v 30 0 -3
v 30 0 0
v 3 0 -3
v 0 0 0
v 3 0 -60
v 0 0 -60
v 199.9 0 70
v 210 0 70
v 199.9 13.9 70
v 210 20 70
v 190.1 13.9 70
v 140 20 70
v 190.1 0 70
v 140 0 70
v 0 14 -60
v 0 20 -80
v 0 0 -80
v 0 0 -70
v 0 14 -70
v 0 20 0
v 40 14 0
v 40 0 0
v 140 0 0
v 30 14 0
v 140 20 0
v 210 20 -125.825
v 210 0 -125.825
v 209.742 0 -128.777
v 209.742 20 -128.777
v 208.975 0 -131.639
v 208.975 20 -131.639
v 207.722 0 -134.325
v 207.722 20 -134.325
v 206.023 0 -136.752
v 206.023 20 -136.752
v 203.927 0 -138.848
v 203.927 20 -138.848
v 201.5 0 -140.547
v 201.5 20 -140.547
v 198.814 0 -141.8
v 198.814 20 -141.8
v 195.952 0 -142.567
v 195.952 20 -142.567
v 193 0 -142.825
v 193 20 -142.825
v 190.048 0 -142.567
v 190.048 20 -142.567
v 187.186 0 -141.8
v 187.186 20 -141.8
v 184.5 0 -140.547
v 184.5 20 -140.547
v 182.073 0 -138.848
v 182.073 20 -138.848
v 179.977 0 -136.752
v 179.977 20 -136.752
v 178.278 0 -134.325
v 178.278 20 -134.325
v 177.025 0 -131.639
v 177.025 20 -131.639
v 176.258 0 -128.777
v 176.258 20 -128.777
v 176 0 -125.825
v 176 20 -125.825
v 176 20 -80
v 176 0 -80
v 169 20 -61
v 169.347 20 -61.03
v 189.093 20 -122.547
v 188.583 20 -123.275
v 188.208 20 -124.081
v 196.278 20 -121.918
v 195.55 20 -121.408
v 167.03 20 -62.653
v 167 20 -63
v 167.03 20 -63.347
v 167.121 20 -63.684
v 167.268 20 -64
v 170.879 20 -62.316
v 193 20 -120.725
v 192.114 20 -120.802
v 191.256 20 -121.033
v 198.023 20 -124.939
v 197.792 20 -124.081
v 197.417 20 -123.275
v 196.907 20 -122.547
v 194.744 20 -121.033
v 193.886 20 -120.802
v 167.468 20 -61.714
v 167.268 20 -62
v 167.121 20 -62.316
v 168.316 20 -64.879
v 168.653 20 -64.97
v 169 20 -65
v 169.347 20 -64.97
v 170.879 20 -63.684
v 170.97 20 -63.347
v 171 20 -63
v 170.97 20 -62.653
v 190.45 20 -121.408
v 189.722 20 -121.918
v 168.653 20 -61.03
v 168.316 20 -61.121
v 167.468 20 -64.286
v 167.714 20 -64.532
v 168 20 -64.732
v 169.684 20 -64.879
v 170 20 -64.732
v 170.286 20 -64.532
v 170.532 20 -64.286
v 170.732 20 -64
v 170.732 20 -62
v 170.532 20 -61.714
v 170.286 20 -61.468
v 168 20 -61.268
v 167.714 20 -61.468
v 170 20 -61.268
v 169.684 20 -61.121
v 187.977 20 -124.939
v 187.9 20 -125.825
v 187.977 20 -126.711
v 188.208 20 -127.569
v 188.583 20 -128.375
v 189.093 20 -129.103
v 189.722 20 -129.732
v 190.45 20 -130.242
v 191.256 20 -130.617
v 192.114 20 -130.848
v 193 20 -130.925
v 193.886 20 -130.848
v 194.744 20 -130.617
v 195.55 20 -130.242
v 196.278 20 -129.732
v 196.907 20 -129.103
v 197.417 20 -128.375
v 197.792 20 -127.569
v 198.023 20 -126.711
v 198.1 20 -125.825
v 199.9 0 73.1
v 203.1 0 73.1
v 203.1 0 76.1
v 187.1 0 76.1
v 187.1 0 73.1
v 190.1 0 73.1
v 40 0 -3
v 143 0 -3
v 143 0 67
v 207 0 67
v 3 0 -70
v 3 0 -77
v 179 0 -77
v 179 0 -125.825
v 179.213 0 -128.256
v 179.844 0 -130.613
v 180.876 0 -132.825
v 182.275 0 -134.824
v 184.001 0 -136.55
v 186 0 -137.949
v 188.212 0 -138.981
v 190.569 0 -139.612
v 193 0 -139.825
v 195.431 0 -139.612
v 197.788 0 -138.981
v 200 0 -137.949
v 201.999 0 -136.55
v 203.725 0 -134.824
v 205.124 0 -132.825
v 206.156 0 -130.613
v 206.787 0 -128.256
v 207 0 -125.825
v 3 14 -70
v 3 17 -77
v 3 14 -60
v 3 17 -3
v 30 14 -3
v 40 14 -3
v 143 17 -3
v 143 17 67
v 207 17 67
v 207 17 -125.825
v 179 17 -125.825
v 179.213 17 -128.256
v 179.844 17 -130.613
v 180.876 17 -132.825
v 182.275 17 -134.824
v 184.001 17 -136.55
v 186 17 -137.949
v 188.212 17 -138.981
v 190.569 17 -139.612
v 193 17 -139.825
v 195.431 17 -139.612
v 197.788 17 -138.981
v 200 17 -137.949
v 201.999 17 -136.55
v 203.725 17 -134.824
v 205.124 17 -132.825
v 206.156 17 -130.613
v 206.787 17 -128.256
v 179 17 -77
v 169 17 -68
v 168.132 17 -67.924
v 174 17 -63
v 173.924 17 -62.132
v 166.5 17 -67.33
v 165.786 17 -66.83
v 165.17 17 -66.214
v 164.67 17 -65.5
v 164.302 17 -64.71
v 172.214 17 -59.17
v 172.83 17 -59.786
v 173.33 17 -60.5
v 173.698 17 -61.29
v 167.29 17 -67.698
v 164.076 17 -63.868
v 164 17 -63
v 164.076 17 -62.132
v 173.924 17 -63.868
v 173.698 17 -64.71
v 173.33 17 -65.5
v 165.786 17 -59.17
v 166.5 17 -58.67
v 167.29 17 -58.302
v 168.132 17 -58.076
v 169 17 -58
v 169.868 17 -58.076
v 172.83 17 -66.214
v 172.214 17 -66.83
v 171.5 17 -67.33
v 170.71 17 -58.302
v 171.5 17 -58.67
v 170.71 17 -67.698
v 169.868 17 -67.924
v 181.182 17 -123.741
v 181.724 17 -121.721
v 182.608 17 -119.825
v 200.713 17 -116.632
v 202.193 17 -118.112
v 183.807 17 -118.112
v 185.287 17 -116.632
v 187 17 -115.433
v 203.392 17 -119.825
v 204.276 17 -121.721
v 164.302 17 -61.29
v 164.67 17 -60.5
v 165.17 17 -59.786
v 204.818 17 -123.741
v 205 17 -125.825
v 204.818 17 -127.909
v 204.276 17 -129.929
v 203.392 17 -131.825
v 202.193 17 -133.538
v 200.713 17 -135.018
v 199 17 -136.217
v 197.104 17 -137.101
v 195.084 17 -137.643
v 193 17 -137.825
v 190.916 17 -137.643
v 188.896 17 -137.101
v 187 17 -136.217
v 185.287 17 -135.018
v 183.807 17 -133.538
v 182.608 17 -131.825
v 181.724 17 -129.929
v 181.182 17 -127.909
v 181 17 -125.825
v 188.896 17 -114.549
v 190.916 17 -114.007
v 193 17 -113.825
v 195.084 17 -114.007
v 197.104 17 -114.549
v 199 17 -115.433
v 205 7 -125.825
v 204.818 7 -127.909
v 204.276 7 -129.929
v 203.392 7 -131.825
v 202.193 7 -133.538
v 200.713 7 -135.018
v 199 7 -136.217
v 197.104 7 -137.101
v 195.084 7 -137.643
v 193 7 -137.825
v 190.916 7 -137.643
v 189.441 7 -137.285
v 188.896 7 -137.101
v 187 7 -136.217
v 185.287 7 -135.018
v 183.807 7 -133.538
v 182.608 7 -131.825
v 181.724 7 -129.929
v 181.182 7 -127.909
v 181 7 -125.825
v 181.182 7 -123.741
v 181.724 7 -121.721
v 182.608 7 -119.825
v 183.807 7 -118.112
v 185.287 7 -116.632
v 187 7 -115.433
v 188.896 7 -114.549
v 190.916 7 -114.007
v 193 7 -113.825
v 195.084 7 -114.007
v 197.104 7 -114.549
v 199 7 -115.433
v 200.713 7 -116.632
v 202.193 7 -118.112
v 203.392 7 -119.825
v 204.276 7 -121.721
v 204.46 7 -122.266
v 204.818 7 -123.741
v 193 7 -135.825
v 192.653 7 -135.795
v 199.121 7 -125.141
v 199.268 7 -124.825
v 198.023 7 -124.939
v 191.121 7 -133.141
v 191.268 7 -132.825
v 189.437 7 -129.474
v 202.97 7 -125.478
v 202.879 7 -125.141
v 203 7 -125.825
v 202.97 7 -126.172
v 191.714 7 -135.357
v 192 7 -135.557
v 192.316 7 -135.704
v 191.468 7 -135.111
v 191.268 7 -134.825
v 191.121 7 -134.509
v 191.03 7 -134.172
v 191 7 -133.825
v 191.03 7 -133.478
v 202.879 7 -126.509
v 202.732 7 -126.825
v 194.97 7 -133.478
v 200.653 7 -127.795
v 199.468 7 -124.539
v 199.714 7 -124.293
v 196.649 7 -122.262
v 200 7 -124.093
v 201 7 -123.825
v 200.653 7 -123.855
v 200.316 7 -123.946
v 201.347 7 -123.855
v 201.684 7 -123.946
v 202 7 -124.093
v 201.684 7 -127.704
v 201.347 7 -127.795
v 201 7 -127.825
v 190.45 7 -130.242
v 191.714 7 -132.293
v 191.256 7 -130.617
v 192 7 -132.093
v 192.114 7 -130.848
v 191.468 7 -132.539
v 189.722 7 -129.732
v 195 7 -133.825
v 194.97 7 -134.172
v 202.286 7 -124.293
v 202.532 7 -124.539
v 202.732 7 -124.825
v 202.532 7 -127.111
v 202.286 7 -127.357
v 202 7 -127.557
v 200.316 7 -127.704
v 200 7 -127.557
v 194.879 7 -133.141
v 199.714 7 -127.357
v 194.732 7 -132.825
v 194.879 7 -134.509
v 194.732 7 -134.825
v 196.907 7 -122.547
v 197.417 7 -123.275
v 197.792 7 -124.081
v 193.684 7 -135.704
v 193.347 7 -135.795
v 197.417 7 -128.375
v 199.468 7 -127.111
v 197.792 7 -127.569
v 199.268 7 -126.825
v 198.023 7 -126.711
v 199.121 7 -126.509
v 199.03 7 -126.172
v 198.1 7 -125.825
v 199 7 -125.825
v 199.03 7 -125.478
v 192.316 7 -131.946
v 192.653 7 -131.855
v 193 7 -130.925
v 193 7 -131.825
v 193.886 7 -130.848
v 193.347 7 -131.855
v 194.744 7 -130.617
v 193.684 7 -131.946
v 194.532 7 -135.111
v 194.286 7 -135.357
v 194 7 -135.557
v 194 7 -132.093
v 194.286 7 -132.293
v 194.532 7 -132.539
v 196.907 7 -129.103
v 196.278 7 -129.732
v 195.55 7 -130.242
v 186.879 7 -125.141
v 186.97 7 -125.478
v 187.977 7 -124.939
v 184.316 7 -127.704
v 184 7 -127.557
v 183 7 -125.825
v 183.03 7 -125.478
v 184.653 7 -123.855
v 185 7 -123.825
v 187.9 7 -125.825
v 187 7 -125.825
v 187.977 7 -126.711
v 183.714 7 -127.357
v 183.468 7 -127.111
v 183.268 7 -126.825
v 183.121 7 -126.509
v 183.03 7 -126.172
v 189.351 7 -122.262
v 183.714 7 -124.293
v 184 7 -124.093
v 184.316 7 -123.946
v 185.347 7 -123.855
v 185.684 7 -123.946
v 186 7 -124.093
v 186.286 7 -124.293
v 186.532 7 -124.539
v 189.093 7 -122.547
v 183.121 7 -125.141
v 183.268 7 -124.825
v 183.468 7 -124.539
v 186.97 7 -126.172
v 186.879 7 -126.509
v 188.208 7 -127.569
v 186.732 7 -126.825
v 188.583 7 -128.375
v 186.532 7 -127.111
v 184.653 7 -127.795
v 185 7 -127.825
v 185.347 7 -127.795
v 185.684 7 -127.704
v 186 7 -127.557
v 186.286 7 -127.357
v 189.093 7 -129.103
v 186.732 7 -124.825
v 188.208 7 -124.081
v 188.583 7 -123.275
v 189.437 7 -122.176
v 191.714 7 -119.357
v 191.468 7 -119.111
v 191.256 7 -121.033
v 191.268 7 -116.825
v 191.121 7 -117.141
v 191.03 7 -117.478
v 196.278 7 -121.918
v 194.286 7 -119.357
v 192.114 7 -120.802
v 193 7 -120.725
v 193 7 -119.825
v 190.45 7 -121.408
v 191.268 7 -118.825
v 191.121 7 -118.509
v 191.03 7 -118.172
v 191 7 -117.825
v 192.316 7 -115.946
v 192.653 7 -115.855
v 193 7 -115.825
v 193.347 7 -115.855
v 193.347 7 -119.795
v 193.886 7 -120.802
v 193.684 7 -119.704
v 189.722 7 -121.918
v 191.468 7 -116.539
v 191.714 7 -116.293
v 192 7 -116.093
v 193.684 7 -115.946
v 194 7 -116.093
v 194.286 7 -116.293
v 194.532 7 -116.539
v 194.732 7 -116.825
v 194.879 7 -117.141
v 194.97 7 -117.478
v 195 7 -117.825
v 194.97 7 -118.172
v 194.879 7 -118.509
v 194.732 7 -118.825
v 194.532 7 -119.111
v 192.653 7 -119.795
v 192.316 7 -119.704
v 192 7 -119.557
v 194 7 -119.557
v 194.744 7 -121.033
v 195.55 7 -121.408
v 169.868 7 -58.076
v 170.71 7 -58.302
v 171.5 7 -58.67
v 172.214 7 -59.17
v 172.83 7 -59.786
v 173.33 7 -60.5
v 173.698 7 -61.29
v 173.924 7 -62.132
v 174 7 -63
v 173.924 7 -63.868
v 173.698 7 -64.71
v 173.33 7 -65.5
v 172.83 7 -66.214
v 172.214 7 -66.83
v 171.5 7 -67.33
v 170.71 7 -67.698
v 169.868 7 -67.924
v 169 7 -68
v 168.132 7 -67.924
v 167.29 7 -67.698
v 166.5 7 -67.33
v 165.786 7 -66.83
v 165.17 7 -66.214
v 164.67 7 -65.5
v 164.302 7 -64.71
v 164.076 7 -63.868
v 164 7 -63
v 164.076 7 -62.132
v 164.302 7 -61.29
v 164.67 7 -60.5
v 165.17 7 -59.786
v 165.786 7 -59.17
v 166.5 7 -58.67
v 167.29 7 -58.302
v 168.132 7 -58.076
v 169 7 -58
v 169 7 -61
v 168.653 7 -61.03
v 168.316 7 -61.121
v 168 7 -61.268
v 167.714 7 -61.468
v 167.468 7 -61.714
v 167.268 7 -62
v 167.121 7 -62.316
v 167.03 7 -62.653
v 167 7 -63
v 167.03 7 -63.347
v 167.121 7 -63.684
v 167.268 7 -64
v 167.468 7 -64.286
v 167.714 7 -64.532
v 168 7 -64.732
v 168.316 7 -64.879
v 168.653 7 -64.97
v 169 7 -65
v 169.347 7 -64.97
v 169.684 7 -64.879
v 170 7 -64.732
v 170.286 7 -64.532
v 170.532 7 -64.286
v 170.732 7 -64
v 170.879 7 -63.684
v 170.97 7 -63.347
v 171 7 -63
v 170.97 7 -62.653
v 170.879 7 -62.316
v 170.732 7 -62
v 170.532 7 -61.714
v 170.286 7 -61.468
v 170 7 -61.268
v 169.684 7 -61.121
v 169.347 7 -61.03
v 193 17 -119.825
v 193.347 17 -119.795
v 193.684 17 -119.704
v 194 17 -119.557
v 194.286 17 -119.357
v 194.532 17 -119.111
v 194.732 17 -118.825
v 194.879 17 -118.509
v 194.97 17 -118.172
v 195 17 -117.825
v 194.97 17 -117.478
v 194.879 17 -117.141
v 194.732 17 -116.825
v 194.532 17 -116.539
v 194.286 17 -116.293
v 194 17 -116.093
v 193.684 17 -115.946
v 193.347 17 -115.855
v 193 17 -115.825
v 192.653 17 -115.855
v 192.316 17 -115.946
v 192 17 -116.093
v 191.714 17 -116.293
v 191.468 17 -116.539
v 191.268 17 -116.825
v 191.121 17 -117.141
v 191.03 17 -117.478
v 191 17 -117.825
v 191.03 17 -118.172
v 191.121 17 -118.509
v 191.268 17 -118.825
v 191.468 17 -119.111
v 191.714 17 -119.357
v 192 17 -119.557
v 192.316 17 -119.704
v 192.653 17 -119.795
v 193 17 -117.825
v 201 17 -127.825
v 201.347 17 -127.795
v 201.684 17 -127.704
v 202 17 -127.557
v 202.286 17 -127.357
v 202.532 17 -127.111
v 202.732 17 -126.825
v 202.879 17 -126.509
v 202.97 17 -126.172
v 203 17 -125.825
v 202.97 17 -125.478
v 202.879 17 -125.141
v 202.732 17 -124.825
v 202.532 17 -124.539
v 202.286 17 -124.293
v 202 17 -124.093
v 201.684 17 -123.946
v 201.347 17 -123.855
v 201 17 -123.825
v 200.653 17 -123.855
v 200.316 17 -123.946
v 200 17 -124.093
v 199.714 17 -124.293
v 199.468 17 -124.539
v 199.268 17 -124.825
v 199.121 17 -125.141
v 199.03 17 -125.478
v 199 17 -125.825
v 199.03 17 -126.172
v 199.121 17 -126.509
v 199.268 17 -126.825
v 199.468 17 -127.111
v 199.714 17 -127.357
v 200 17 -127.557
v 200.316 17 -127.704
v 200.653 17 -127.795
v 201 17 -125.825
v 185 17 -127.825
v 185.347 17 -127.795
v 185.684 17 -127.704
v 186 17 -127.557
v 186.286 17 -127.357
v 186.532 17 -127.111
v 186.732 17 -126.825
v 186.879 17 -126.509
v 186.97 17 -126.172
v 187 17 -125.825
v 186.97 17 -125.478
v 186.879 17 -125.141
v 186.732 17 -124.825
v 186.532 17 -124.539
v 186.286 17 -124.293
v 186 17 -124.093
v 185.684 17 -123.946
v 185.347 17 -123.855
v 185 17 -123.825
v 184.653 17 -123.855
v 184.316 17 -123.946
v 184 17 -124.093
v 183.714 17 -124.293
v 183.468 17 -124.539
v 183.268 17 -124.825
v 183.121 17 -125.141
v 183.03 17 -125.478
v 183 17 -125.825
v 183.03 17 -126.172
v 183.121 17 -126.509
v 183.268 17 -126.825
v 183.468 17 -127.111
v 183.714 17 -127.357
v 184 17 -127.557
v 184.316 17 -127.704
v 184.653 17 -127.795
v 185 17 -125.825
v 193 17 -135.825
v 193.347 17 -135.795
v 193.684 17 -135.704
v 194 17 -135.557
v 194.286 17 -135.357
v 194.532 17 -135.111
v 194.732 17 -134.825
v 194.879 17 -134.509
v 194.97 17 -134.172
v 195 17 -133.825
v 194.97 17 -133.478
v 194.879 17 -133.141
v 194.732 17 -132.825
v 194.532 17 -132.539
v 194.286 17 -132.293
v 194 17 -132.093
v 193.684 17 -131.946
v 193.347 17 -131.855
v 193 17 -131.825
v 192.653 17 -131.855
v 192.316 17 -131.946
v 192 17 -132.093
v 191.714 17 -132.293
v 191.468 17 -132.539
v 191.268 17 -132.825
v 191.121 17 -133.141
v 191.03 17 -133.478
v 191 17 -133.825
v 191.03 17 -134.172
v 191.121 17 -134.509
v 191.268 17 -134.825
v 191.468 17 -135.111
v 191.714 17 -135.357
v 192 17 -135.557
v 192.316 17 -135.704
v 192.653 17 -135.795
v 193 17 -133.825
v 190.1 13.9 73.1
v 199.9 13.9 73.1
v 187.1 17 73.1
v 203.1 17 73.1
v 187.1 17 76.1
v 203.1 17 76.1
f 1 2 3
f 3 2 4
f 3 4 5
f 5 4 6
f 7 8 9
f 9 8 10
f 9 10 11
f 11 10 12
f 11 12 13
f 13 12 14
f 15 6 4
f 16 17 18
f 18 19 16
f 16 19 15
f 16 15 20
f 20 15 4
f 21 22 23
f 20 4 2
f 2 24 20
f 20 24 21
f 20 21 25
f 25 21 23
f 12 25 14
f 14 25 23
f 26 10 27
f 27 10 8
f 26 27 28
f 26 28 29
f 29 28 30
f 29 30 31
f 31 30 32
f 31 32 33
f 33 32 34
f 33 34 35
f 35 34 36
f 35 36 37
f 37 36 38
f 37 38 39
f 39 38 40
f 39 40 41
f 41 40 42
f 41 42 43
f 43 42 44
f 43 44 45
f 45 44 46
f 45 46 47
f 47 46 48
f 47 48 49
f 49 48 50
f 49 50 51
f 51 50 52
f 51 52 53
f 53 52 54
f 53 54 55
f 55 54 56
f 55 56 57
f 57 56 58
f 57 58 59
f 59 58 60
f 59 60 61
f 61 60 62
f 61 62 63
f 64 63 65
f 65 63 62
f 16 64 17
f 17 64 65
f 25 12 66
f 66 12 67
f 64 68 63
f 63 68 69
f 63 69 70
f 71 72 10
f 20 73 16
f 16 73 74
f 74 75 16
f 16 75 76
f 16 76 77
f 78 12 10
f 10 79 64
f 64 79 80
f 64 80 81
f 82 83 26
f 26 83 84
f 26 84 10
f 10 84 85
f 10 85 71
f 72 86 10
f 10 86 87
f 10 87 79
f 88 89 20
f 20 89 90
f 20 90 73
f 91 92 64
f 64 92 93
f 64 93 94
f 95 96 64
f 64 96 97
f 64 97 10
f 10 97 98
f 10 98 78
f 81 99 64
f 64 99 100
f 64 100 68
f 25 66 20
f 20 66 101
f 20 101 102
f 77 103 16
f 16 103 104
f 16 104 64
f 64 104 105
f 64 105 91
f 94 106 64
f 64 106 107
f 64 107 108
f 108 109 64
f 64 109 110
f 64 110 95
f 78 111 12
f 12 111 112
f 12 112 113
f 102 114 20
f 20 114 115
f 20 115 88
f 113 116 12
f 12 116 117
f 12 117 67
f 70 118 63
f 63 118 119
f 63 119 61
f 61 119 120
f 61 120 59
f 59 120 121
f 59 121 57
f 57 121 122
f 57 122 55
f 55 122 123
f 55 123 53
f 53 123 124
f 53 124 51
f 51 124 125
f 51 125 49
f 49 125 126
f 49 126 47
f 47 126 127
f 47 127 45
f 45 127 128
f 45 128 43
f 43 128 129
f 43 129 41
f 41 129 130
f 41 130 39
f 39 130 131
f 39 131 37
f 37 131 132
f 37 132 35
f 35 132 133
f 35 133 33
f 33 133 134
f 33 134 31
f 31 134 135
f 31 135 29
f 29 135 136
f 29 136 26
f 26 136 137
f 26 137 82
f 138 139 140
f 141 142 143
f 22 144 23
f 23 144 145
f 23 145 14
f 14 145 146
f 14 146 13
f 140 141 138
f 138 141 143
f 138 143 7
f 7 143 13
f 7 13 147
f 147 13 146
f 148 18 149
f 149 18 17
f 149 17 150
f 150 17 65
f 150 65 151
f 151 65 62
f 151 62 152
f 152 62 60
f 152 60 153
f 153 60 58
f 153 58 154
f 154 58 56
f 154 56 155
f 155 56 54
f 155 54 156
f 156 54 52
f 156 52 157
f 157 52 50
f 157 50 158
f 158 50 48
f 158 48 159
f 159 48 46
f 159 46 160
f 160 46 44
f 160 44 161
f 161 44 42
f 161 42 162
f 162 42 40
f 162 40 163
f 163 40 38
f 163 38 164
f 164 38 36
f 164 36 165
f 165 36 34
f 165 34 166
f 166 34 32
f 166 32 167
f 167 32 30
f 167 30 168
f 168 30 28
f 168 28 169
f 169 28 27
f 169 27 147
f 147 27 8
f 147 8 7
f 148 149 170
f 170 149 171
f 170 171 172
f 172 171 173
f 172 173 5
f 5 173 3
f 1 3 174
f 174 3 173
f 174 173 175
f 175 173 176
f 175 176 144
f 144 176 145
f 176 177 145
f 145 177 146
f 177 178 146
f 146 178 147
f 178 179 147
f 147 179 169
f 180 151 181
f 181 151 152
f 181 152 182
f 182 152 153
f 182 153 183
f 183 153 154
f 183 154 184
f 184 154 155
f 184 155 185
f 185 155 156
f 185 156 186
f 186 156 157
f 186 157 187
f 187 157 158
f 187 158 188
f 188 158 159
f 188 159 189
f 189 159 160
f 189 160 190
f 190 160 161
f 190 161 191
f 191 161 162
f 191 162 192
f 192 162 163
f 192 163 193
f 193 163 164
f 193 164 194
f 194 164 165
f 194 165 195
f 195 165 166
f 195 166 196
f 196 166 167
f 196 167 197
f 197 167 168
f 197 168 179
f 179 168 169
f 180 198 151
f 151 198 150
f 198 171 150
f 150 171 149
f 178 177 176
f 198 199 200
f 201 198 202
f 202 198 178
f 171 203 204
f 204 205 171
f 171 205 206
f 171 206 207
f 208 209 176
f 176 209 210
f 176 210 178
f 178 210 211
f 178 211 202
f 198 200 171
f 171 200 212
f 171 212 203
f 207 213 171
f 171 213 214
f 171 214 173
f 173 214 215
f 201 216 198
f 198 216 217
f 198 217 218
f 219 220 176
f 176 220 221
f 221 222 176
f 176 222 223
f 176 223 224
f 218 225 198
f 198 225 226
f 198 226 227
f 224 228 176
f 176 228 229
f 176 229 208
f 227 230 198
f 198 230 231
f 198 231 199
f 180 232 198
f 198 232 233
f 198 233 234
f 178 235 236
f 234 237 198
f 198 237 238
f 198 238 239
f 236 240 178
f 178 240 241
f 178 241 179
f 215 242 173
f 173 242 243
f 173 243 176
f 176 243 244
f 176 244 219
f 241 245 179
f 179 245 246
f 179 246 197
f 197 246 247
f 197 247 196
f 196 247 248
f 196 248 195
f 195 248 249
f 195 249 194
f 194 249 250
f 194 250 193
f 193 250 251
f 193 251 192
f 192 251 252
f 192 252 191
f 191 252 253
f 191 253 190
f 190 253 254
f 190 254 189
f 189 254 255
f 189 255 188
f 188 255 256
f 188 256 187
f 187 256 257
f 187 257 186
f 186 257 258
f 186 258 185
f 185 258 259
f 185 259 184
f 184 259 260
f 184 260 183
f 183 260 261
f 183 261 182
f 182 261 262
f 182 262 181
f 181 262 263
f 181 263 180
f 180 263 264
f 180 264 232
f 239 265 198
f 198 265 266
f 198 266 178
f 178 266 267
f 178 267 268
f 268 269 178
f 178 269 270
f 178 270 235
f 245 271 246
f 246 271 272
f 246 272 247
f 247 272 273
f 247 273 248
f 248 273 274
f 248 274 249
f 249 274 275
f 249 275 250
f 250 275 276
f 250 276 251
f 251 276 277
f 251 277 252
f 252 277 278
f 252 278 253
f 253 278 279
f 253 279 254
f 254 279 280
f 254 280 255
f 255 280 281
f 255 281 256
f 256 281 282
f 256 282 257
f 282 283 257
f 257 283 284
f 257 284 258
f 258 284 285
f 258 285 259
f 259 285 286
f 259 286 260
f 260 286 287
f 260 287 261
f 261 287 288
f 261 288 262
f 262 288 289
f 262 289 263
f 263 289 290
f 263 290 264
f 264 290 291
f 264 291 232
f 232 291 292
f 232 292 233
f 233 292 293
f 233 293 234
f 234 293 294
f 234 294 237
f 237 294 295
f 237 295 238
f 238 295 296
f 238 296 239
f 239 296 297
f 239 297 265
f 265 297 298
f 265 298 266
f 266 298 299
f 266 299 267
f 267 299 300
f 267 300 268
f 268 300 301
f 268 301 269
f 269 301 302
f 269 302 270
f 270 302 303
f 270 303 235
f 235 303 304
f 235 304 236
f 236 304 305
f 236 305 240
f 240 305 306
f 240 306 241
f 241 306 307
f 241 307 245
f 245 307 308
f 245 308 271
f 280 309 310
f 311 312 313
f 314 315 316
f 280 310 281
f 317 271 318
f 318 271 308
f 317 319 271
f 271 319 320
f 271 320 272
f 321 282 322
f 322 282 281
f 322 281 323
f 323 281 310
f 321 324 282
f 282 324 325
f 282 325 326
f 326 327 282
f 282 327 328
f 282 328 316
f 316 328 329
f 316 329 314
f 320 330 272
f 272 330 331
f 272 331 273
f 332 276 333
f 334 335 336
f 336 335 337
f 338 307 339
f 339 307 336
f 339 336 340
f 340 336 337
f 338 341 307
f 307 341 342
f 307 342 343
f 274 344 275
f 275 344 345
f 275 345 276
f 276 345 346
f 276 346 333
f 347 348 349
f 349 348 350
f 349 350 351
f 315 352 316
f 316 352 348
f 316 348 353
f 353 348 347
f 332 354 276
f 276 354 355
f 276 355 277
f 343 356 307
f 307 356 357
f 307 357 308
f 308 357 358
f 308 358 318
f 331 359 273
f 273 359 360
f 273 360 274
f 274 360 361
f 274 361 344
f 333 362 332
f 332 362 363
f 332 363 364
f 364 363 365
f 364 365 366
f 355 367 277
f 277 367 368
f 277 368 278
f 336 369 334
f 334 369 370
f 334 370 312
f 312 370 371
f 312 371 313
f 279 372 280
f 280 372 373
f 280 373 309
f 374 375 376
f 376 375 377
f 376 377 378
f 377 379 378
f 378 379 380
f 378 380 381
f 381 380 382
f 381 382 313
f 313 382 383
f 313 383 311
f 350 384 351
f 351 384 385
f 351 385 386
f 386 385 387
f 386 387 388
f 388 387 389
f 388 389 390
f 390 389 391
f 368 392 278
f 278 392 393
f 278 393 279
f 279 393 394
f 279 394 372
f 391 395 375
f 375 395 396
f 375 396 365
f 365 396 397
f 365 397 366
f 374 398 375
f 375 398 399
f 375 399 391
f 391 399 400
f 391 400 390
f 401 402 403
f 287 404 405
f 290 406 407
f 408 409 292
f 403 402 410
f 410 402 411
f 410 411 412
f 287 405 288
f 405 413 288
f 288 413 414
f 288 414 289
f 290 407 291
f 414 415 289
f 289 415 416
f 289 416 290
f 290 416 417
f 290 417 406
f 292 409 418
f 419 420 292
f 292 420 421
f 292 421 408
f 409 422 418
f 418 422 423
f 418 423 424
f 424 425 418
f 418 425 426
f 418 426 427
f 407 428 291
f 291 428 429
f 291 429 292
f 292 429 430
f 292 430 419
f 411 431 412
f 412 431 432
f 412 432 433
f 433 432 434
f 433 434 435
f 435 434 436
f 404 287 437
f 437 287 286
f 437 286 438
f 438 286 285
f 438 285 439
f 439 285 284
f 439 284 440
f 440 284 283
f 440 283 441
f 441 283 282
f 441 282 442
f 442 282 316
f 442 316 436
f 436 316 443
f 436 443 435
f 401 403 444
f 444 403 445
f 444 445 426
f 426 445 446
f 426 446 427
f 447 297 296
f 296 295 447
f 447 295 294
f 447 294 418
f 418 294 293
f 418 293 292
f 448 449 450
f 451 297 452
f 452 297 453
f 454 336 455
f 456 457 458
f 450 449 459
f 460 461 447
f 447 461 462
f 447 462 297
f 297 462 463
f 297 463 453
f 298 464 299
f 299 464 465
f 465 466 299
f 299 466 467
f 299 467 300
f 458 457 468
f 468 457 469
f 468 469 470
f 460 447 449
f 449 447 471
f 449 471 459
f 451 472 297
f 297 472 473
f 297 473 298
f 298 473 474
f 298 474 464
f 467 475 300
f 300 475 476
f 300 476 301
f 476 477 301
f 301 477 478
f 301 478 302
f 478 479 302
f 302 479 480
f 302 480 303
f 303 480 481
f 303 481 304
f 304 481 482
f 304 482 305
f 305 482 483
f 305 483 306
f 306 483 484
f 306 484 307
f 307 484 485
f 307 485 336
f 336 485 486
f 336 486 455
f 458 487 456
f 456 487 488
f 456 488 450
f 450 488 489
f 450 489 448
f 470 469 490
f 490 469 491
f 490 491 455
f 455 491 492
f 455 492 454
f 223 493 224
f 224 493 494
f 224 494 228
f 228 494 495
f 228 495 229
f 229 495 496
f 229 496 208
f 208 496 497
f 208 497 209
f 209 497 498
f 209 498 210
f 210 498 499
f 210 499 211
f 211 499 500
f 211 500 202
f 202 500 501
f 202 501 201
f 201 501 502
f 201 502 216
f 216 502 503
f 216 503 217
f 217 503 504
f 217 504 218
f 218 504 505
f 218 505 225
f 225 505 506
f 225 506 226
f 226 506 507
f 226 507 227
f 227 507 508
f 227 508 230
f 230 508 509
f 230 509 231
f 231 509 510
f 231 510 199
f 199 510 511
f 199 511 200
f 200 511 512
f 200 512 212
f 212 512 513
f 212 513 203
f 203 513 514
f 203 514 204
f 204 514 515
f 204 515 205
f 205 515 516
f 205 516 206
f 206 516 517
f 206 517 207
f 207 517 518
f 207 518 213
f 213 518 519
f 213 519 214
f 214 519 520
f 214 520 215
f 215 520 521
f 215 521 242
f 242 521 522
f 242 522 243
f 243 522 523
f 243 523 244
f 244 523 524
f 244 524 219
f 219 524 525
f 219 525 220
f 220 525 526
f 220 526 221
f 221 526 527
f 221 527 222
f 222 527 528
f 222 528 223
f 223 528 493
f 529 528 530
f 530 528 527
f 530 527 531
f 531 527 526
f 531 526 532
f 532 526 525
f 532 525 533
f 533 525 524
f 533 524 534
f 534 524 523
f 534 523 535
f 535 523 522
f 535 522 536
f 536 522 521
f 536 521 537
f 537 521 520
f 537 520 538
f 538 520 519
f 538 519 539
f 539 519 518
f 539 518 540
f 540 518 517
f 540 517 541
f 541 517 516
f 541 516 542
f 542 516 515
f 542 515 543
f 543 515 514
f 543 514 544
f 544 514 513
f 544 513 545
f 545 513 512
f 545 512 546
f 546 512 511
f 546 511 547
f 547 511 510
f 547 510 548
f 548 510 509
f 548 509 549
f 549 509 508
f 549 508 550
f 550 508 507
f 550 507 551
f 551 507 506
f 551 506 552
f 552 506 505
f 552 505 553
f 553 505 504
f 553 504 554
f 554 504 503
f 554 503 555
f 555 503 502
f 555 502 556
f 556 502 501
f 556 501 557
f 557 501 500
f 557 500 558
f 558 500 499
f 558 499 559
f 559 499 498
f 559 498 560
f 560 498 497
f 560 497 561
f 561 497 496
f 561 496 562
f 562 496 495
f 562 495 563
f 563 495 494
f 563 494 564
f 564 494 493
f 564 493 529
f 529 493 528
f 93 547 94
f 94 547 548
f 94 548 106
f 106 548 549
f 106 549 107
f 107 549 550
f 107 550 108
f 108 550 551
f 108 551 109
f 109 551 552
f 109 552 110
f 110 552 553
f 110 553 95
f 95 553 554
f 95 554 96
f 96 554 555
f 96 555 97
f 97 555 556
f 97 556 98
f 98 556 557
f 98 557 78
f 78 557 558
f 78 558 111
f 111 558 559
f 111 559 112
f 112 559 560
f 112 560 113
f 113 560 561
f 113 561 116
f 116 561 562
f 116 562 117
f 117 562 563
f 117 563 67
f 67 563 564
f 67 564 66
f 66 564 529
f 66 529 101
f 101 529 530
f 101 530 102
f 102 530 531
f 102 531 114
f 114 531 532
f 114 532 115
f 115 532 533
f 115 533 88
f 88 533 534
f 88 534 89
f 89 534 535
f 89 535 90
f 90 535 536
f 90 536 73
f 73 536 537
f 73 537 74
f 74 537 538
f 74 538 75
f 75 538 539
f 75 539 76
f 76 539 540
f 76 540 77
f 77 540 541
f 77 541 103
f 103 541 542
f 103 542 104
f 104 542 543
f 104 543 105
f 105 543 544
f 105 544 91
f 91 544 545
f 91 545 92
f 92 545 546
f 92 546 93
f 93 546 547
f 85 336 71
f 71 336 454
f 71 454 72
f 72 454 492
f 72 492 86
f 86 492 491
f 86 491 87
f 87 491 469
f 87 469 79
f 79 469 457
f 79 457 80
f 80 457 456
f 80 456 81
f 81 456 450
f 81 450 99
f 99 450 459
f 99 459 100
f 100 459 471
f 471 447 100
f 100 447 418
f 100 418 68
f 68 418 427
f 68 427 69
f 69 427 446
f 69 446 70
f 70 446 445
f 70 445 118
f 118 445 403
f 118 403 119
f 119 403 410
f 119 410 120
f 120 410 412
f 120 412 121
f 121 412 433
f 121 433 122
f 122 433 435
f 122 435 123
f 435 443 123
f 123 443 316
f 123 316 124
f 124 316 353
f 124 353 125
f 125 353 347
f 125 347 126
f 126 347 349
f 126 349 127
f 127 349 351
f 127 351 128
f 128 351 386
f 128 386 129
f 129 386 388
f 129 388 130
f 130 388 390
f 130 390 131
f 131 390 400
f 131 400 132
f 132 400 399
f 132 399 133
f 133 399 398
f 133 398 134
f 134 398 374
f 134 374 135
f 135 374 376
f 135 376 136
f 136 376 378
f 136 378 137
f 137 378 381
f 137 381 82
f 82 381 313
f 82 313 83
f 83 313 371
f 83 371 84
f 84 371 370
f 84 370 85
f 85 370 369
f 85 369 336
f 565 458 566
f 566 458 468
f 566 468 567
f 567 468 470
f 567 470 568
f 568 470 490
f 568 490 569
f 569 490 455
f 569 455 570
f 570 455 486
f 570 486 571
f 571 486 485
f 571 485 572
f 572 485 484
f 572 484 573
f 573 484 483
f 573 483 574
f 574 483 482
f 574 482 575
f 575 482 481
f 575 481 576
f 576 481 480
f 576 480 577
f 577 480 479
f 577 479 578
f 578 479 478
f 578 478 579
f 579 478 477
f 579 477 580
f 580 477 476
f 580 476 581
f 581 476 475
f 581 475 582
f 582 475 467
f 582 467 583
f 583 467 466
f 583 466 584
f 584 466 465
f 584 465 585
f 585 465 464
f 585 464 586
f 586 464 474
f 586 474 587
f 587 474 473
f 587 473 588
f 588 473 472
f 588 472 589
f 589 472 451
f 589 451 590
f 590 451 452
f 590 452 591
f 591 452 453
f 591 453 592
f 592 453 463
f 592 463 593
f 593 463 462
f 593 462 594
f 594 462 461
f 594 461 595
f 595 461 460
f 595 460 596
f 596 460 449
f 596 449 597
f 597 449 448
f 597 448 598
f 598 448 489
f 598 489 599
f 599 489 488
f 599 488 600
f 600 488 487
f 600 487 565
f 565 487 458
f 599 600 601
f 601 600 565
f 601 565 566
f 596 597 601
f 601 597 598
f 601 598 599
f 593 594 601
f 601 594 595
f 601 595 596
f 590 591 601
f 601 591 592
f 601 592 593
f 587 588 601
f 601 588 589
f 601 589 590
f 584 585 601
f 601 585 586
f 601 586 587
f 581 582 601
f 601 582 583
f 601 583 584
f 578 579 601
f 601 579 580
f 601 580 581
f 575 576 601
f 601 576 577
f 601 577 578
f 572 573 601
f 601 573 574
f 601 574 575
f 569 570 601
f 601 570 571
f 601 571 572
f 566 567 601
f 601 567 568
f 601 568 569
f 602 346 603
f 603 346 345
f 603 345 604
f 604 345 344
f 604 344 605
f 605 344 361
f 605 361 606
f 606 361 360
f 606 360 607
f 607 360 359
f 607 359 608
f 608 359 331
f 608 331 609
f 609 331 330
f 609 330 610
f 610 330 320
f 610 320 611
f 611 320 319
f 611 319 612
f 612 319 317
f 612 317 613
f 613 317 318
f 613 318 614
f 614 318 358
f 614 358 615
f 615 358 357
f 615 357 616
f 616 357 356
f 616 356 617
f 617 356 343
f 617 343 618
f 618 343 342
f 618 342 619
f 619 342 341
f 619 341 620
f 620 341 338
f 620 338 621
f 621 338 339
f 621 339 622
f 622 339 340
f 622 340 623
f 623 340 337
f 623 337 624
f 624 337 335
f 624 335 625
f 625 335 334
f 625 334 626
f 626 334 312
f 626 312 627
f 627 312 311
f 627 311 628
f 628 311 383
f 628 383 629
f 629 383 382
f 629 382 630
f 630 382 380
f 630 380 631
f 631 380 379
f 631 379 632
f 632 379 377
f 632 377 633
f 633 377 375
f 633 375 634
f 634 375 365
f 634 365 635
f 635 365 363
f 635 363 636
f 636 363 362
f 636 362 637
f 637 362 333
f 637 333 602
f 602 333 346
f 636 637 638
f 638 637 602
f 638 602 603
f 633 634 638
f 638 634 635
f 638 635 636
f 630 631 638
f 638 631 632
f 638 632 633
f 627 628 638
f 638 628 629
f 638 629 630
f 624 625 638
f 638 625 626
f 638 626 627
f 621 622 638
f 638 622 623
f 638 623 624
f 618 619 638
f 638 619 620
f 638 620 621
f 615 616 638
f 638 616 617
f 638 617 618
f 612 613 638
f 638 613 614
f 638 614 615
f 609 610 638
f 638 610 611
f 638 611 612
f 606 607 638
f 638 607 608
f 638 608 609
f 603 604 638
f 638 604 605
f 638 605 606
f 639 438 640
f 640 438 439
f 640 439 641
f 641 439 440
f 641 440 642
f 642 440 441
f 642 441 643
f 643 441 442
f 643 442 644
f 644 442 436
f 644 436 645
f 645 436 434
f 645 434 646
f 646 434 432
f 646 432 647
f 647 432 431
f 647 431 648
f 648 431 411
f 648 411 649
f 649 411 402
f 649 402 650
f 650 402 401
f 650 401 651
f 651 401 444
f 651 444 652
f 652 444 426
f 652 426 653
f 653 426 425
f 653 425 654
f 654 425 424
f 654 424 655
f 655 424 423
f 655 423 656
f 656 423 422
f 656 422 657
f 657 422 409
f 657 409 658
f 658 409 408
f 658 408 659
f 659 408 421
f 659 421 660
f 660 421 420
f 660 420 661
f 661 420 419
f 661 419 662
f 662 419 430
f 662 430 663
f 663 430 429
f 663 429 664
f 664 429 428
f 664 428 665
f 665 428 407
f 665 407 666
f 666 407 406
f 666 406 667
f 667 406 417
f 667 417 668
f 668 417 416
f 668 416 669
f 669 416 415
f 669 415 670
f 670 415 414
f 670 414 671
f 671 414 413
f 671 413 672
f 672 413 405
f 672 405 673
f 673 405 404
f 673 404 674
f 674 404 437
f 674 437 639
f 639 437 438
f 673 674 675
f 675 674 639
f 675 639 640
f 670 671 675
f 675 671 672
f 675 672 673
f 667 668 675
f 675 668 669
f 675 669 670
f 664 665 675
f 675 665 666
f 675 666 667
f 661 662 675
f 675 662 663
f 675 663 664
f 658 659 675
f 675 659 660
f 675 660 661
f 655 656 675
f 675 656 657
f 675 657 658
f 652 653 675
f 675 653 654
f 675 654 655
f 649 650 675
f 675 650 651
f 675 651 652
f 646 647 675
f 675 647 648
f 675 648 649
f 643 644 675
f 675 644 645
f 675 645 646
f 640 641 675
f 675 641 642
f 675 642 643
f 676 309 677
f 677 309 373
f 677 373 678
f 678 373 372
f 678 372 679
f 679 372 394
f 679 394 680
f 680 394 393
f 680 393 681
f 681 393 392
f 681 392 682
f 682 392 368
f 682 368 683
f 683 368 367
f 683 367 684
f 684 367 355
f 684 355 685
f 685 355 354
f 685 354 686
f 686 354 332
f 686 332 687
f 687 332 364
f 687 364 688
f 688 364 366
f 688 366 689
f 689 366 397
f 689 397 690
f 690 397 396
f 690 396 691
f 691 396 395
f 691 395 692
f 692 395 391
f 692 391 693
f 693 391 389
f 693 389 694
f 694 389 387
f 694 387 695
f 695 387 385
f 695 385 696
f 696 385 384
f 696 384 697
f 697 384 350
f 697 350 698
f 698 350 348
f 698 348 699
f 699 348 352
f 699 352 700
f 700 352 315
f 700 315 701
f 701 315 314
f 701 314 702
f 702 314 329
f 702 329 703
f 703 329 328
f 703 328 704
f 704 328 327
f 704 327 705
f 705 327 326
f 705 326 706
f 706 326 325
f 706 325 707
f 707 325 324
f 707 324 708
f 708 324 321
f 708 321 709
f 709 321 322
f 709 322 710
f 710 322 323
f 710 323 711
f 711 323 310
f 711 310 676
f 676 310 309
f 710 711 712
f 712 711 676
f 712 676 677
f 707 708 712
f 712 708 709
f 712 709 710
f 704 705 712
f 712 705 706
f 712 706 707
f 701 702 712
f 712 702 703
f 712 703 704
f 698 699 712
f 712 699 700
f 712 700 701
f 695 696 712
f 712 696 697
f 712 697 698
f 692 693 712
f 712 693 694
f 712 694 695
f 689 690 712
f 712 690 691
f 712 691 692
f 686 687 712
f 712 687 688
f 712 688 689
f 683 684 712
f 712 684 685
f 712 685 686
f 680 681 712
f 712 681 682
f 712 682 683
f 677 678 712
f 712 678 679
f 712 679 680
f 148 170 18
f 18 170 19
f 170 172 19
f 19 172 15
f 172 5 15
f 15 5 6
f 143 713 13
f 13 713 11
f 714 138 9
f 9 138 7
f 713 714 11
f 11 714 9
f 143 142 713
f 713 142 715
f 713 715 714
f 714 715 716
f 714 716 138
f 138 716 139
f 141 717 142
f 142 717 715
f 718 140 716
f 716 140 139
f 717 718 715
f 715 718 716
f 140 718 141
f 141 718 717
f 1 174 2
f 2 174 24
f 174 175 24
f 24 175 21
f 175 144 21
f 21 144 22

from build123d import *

# Parameters (mm, degrees)
CORNERBOSS_EXTRUDE1_DEPTH               = 20
SHELL1_T                                = -3
PADSKETCH2_R                            = 12
PADSKETCH2_R_2                          = 5
PADBOSS_EXTRUDE2_DEPTH                  = 10
STEPPERRODHOLESKETCH3_R                 = 5.1
STEPPERRODHOLESKETCH3_R_2               = 2
STEPPERRODHOLECUT_EXTRUDE1_DEPTH        = 255.298998474
THREADEDNUTMOUNTHOLESSKETCH4_R          = 2
THREADEDNUTMOUNTHOLESCUT_EXTRUDE2_DEPTH = 10
TLPEGHOLESKETCH1_W                      = 10
TLPEGHOLESKETCH1_H                      = 14
TLPEGHOLECUT_EXTRUDE1_DEPTH             = 3
BOTTOMPEGSKETCH2_W                      = 9.8
BOTTOMPEGSKETCH2_H                      = 13.9
BOTTOMPEGBOSS_EXTRUDE1_DEPTH            = 3.1
BOTTOMPEGCAPSKETCH3_W                   = 16
BOTTOMPEGCAPSKETCH3_H                   = 17
BOTTOMPEGCAPBOSS_EXTRUDE2_DEPTH         = 3
BEDCENTERHOLECUTSKETCH1_W               = 10
BEDCENTERHOLECUTSKETCH1_H               = 14
BEDCENTERHOLECUT_EXTRUDE1_DEPTH         = 3


with BuildPart() as part:
    # CornerSketch1 → CornerBoss-Extrude1 (new body)
    with BuildSketch(Plane(origin=(0, 0, 0), x_dir=(1, 0, 0), z_dir=(0, 1, 0))):
        with BuildLine():
            Line((210, -70), (140, -70))
            Line((140, -70), (140, 0))
            Line((140, 0), (0, 0))
            Line((0, 0), (0, 80))
            Line((0, 80), (176, 80))
            Line((176, 80), (176, 125.825))
            ThreePointArc((176, 125.825), (193, 142.825), (210, 125.825))
            Line((210, 125.825), (210, -70))
        make_face()
    extrude(amount=CORNERBOSS_EXTRUDE1_DEPTH)

    # Shell1
    shell1_openings = [part.faces().sort_by_distance(p)[0] for p in [
        (126.932214483, 0, -30.416556174),
    ]]
    offset(amount=SHELL1_T, openings=shell1_openings, kind=Kind.INTERSECTION)

    # PadSketch2 → PadBoss-Extrude2 (add)
    with BuildSketch(Plane.XZ.offset(-17)):
        with Locations(Location((193, -125.825, 0), (0, 0, 90))):
            Circle(PADSKETCH2_R)
        with Locations(Location((169, -63, 0), (0, 0, 90))):
            Circle(PADSKETCH2_R_2)
    extrude(amount=PADBOSS_EXTRUDE2_DEPTH)

    # StepperRodHoleSketch3 → StepperRodHoleCut-Extrude1 (cut, through all)
    with BuildSketch(Plane.XZ.offset(-7)):
        with Locations(Location((193, -125.825, 0), (0, 0, 270))):
            Circle(STEPPERRODHOLESKETCH3_R)
        with Locations(Location((169, -63, 0), (0, 0, 270))):
            Circle(STEPPERRODHOLESKETCH3_R_2)
    extrude(amount=-STEPPERRODHOLECUT_EXTRUDE1_DEPTH, mode=Mode.SUBTRACT)

    # ThreadedNutMountHolesSketch4 → ThreadedNutMountHolesCut-Extrude2 (cut)
    with BuildSketch(Plane(origin=(0, 7, 0), x_dir=(-1, 0, 0), z_dir=(0, -1, 0))):
        with Locations(Location((-193, 133.825, 0), (0, 0, 90))):
            Circle(THREADEDNUTMOUNTHOLESSKETCH4_R)
        with Locations(Location((-185, 125.825, 0), (0, 0, 90))):
            Circle(THREADEDNUTMOUNTHOLESSKETCH4_R)
        with Locations(Location((-201, 125.825, 0), (0, 0, 90))):
            Circle(THREADEDNUTMOUNTHOLESSKETCH4_R)
        with Locations(Location((-193, 117.825, 0), (0, 0, 90))):
            Circle(THREADEDNUTMOUNTHOLESSKETCH4_R)
    extrude(amount=-THREADEDNUTMOUNTHOLESCUT_EXTRUDE2_DEPTH, mode=Mode.SUBTRACT)

    # TLPegHoleSketch1 → TLPegHoleCut-Extrude1 (cut)
    with BuildSketch(Plane.ZY):
        with Locations((-65, 7)):
            Rectangle(TLPEGHOLESKETCH1_W, TLPEGHOLESKETCH1_H)
    extrude(amount=-TLPEGHOLECUT_EXTRUDE1_DEPTH, mode=Mode.SUBTRACT)

    # BottomPegSketch2 → BottomPegBoss-Extrude1 (add)
    with BuildSketch(Plane.XY.offset(70)):
        with Locations((195, 6.95)):
            Rectangle(BOTTOMPEGSKETCH2_W, BOTTOMPEGSKETCH2_H)
    extrude(amount=BOTTOMPEGBOSS_EXTRUDE1_DEPTH)

    # BottomPegCapSketch3 → BottomPegCapBoss-Extrude2 (add)
    with BuildSketch(Plane.XY.offset(73.1)):
        with Locations((195.1, 8.5)):
            Rectangle(BOTTOMPEGCAPSKETCH3_W, BOTTOMPEGCAPSKETCH3_H)
    extrude(amount=BOTTOMPEGCAPBOSS_EXTRUDE2_DEPTH)

    # BedCenterHoleCutSketch1 → BedCenterHoleCut-Extrude1 (cut)
    with BuildSketch(Plane.XY):
        with Locations((35, 7)):
            Rectangle(BEDCENTERHOLECUTSKETCH1_W, BEDCENTERHOLECUTSKETCH1_H)
    extrude(amount=-BEDCENTERHOLECUT_EXTRUDE1_DEPTH, mode=Mode.SUBTRACT)


solid = part.part
